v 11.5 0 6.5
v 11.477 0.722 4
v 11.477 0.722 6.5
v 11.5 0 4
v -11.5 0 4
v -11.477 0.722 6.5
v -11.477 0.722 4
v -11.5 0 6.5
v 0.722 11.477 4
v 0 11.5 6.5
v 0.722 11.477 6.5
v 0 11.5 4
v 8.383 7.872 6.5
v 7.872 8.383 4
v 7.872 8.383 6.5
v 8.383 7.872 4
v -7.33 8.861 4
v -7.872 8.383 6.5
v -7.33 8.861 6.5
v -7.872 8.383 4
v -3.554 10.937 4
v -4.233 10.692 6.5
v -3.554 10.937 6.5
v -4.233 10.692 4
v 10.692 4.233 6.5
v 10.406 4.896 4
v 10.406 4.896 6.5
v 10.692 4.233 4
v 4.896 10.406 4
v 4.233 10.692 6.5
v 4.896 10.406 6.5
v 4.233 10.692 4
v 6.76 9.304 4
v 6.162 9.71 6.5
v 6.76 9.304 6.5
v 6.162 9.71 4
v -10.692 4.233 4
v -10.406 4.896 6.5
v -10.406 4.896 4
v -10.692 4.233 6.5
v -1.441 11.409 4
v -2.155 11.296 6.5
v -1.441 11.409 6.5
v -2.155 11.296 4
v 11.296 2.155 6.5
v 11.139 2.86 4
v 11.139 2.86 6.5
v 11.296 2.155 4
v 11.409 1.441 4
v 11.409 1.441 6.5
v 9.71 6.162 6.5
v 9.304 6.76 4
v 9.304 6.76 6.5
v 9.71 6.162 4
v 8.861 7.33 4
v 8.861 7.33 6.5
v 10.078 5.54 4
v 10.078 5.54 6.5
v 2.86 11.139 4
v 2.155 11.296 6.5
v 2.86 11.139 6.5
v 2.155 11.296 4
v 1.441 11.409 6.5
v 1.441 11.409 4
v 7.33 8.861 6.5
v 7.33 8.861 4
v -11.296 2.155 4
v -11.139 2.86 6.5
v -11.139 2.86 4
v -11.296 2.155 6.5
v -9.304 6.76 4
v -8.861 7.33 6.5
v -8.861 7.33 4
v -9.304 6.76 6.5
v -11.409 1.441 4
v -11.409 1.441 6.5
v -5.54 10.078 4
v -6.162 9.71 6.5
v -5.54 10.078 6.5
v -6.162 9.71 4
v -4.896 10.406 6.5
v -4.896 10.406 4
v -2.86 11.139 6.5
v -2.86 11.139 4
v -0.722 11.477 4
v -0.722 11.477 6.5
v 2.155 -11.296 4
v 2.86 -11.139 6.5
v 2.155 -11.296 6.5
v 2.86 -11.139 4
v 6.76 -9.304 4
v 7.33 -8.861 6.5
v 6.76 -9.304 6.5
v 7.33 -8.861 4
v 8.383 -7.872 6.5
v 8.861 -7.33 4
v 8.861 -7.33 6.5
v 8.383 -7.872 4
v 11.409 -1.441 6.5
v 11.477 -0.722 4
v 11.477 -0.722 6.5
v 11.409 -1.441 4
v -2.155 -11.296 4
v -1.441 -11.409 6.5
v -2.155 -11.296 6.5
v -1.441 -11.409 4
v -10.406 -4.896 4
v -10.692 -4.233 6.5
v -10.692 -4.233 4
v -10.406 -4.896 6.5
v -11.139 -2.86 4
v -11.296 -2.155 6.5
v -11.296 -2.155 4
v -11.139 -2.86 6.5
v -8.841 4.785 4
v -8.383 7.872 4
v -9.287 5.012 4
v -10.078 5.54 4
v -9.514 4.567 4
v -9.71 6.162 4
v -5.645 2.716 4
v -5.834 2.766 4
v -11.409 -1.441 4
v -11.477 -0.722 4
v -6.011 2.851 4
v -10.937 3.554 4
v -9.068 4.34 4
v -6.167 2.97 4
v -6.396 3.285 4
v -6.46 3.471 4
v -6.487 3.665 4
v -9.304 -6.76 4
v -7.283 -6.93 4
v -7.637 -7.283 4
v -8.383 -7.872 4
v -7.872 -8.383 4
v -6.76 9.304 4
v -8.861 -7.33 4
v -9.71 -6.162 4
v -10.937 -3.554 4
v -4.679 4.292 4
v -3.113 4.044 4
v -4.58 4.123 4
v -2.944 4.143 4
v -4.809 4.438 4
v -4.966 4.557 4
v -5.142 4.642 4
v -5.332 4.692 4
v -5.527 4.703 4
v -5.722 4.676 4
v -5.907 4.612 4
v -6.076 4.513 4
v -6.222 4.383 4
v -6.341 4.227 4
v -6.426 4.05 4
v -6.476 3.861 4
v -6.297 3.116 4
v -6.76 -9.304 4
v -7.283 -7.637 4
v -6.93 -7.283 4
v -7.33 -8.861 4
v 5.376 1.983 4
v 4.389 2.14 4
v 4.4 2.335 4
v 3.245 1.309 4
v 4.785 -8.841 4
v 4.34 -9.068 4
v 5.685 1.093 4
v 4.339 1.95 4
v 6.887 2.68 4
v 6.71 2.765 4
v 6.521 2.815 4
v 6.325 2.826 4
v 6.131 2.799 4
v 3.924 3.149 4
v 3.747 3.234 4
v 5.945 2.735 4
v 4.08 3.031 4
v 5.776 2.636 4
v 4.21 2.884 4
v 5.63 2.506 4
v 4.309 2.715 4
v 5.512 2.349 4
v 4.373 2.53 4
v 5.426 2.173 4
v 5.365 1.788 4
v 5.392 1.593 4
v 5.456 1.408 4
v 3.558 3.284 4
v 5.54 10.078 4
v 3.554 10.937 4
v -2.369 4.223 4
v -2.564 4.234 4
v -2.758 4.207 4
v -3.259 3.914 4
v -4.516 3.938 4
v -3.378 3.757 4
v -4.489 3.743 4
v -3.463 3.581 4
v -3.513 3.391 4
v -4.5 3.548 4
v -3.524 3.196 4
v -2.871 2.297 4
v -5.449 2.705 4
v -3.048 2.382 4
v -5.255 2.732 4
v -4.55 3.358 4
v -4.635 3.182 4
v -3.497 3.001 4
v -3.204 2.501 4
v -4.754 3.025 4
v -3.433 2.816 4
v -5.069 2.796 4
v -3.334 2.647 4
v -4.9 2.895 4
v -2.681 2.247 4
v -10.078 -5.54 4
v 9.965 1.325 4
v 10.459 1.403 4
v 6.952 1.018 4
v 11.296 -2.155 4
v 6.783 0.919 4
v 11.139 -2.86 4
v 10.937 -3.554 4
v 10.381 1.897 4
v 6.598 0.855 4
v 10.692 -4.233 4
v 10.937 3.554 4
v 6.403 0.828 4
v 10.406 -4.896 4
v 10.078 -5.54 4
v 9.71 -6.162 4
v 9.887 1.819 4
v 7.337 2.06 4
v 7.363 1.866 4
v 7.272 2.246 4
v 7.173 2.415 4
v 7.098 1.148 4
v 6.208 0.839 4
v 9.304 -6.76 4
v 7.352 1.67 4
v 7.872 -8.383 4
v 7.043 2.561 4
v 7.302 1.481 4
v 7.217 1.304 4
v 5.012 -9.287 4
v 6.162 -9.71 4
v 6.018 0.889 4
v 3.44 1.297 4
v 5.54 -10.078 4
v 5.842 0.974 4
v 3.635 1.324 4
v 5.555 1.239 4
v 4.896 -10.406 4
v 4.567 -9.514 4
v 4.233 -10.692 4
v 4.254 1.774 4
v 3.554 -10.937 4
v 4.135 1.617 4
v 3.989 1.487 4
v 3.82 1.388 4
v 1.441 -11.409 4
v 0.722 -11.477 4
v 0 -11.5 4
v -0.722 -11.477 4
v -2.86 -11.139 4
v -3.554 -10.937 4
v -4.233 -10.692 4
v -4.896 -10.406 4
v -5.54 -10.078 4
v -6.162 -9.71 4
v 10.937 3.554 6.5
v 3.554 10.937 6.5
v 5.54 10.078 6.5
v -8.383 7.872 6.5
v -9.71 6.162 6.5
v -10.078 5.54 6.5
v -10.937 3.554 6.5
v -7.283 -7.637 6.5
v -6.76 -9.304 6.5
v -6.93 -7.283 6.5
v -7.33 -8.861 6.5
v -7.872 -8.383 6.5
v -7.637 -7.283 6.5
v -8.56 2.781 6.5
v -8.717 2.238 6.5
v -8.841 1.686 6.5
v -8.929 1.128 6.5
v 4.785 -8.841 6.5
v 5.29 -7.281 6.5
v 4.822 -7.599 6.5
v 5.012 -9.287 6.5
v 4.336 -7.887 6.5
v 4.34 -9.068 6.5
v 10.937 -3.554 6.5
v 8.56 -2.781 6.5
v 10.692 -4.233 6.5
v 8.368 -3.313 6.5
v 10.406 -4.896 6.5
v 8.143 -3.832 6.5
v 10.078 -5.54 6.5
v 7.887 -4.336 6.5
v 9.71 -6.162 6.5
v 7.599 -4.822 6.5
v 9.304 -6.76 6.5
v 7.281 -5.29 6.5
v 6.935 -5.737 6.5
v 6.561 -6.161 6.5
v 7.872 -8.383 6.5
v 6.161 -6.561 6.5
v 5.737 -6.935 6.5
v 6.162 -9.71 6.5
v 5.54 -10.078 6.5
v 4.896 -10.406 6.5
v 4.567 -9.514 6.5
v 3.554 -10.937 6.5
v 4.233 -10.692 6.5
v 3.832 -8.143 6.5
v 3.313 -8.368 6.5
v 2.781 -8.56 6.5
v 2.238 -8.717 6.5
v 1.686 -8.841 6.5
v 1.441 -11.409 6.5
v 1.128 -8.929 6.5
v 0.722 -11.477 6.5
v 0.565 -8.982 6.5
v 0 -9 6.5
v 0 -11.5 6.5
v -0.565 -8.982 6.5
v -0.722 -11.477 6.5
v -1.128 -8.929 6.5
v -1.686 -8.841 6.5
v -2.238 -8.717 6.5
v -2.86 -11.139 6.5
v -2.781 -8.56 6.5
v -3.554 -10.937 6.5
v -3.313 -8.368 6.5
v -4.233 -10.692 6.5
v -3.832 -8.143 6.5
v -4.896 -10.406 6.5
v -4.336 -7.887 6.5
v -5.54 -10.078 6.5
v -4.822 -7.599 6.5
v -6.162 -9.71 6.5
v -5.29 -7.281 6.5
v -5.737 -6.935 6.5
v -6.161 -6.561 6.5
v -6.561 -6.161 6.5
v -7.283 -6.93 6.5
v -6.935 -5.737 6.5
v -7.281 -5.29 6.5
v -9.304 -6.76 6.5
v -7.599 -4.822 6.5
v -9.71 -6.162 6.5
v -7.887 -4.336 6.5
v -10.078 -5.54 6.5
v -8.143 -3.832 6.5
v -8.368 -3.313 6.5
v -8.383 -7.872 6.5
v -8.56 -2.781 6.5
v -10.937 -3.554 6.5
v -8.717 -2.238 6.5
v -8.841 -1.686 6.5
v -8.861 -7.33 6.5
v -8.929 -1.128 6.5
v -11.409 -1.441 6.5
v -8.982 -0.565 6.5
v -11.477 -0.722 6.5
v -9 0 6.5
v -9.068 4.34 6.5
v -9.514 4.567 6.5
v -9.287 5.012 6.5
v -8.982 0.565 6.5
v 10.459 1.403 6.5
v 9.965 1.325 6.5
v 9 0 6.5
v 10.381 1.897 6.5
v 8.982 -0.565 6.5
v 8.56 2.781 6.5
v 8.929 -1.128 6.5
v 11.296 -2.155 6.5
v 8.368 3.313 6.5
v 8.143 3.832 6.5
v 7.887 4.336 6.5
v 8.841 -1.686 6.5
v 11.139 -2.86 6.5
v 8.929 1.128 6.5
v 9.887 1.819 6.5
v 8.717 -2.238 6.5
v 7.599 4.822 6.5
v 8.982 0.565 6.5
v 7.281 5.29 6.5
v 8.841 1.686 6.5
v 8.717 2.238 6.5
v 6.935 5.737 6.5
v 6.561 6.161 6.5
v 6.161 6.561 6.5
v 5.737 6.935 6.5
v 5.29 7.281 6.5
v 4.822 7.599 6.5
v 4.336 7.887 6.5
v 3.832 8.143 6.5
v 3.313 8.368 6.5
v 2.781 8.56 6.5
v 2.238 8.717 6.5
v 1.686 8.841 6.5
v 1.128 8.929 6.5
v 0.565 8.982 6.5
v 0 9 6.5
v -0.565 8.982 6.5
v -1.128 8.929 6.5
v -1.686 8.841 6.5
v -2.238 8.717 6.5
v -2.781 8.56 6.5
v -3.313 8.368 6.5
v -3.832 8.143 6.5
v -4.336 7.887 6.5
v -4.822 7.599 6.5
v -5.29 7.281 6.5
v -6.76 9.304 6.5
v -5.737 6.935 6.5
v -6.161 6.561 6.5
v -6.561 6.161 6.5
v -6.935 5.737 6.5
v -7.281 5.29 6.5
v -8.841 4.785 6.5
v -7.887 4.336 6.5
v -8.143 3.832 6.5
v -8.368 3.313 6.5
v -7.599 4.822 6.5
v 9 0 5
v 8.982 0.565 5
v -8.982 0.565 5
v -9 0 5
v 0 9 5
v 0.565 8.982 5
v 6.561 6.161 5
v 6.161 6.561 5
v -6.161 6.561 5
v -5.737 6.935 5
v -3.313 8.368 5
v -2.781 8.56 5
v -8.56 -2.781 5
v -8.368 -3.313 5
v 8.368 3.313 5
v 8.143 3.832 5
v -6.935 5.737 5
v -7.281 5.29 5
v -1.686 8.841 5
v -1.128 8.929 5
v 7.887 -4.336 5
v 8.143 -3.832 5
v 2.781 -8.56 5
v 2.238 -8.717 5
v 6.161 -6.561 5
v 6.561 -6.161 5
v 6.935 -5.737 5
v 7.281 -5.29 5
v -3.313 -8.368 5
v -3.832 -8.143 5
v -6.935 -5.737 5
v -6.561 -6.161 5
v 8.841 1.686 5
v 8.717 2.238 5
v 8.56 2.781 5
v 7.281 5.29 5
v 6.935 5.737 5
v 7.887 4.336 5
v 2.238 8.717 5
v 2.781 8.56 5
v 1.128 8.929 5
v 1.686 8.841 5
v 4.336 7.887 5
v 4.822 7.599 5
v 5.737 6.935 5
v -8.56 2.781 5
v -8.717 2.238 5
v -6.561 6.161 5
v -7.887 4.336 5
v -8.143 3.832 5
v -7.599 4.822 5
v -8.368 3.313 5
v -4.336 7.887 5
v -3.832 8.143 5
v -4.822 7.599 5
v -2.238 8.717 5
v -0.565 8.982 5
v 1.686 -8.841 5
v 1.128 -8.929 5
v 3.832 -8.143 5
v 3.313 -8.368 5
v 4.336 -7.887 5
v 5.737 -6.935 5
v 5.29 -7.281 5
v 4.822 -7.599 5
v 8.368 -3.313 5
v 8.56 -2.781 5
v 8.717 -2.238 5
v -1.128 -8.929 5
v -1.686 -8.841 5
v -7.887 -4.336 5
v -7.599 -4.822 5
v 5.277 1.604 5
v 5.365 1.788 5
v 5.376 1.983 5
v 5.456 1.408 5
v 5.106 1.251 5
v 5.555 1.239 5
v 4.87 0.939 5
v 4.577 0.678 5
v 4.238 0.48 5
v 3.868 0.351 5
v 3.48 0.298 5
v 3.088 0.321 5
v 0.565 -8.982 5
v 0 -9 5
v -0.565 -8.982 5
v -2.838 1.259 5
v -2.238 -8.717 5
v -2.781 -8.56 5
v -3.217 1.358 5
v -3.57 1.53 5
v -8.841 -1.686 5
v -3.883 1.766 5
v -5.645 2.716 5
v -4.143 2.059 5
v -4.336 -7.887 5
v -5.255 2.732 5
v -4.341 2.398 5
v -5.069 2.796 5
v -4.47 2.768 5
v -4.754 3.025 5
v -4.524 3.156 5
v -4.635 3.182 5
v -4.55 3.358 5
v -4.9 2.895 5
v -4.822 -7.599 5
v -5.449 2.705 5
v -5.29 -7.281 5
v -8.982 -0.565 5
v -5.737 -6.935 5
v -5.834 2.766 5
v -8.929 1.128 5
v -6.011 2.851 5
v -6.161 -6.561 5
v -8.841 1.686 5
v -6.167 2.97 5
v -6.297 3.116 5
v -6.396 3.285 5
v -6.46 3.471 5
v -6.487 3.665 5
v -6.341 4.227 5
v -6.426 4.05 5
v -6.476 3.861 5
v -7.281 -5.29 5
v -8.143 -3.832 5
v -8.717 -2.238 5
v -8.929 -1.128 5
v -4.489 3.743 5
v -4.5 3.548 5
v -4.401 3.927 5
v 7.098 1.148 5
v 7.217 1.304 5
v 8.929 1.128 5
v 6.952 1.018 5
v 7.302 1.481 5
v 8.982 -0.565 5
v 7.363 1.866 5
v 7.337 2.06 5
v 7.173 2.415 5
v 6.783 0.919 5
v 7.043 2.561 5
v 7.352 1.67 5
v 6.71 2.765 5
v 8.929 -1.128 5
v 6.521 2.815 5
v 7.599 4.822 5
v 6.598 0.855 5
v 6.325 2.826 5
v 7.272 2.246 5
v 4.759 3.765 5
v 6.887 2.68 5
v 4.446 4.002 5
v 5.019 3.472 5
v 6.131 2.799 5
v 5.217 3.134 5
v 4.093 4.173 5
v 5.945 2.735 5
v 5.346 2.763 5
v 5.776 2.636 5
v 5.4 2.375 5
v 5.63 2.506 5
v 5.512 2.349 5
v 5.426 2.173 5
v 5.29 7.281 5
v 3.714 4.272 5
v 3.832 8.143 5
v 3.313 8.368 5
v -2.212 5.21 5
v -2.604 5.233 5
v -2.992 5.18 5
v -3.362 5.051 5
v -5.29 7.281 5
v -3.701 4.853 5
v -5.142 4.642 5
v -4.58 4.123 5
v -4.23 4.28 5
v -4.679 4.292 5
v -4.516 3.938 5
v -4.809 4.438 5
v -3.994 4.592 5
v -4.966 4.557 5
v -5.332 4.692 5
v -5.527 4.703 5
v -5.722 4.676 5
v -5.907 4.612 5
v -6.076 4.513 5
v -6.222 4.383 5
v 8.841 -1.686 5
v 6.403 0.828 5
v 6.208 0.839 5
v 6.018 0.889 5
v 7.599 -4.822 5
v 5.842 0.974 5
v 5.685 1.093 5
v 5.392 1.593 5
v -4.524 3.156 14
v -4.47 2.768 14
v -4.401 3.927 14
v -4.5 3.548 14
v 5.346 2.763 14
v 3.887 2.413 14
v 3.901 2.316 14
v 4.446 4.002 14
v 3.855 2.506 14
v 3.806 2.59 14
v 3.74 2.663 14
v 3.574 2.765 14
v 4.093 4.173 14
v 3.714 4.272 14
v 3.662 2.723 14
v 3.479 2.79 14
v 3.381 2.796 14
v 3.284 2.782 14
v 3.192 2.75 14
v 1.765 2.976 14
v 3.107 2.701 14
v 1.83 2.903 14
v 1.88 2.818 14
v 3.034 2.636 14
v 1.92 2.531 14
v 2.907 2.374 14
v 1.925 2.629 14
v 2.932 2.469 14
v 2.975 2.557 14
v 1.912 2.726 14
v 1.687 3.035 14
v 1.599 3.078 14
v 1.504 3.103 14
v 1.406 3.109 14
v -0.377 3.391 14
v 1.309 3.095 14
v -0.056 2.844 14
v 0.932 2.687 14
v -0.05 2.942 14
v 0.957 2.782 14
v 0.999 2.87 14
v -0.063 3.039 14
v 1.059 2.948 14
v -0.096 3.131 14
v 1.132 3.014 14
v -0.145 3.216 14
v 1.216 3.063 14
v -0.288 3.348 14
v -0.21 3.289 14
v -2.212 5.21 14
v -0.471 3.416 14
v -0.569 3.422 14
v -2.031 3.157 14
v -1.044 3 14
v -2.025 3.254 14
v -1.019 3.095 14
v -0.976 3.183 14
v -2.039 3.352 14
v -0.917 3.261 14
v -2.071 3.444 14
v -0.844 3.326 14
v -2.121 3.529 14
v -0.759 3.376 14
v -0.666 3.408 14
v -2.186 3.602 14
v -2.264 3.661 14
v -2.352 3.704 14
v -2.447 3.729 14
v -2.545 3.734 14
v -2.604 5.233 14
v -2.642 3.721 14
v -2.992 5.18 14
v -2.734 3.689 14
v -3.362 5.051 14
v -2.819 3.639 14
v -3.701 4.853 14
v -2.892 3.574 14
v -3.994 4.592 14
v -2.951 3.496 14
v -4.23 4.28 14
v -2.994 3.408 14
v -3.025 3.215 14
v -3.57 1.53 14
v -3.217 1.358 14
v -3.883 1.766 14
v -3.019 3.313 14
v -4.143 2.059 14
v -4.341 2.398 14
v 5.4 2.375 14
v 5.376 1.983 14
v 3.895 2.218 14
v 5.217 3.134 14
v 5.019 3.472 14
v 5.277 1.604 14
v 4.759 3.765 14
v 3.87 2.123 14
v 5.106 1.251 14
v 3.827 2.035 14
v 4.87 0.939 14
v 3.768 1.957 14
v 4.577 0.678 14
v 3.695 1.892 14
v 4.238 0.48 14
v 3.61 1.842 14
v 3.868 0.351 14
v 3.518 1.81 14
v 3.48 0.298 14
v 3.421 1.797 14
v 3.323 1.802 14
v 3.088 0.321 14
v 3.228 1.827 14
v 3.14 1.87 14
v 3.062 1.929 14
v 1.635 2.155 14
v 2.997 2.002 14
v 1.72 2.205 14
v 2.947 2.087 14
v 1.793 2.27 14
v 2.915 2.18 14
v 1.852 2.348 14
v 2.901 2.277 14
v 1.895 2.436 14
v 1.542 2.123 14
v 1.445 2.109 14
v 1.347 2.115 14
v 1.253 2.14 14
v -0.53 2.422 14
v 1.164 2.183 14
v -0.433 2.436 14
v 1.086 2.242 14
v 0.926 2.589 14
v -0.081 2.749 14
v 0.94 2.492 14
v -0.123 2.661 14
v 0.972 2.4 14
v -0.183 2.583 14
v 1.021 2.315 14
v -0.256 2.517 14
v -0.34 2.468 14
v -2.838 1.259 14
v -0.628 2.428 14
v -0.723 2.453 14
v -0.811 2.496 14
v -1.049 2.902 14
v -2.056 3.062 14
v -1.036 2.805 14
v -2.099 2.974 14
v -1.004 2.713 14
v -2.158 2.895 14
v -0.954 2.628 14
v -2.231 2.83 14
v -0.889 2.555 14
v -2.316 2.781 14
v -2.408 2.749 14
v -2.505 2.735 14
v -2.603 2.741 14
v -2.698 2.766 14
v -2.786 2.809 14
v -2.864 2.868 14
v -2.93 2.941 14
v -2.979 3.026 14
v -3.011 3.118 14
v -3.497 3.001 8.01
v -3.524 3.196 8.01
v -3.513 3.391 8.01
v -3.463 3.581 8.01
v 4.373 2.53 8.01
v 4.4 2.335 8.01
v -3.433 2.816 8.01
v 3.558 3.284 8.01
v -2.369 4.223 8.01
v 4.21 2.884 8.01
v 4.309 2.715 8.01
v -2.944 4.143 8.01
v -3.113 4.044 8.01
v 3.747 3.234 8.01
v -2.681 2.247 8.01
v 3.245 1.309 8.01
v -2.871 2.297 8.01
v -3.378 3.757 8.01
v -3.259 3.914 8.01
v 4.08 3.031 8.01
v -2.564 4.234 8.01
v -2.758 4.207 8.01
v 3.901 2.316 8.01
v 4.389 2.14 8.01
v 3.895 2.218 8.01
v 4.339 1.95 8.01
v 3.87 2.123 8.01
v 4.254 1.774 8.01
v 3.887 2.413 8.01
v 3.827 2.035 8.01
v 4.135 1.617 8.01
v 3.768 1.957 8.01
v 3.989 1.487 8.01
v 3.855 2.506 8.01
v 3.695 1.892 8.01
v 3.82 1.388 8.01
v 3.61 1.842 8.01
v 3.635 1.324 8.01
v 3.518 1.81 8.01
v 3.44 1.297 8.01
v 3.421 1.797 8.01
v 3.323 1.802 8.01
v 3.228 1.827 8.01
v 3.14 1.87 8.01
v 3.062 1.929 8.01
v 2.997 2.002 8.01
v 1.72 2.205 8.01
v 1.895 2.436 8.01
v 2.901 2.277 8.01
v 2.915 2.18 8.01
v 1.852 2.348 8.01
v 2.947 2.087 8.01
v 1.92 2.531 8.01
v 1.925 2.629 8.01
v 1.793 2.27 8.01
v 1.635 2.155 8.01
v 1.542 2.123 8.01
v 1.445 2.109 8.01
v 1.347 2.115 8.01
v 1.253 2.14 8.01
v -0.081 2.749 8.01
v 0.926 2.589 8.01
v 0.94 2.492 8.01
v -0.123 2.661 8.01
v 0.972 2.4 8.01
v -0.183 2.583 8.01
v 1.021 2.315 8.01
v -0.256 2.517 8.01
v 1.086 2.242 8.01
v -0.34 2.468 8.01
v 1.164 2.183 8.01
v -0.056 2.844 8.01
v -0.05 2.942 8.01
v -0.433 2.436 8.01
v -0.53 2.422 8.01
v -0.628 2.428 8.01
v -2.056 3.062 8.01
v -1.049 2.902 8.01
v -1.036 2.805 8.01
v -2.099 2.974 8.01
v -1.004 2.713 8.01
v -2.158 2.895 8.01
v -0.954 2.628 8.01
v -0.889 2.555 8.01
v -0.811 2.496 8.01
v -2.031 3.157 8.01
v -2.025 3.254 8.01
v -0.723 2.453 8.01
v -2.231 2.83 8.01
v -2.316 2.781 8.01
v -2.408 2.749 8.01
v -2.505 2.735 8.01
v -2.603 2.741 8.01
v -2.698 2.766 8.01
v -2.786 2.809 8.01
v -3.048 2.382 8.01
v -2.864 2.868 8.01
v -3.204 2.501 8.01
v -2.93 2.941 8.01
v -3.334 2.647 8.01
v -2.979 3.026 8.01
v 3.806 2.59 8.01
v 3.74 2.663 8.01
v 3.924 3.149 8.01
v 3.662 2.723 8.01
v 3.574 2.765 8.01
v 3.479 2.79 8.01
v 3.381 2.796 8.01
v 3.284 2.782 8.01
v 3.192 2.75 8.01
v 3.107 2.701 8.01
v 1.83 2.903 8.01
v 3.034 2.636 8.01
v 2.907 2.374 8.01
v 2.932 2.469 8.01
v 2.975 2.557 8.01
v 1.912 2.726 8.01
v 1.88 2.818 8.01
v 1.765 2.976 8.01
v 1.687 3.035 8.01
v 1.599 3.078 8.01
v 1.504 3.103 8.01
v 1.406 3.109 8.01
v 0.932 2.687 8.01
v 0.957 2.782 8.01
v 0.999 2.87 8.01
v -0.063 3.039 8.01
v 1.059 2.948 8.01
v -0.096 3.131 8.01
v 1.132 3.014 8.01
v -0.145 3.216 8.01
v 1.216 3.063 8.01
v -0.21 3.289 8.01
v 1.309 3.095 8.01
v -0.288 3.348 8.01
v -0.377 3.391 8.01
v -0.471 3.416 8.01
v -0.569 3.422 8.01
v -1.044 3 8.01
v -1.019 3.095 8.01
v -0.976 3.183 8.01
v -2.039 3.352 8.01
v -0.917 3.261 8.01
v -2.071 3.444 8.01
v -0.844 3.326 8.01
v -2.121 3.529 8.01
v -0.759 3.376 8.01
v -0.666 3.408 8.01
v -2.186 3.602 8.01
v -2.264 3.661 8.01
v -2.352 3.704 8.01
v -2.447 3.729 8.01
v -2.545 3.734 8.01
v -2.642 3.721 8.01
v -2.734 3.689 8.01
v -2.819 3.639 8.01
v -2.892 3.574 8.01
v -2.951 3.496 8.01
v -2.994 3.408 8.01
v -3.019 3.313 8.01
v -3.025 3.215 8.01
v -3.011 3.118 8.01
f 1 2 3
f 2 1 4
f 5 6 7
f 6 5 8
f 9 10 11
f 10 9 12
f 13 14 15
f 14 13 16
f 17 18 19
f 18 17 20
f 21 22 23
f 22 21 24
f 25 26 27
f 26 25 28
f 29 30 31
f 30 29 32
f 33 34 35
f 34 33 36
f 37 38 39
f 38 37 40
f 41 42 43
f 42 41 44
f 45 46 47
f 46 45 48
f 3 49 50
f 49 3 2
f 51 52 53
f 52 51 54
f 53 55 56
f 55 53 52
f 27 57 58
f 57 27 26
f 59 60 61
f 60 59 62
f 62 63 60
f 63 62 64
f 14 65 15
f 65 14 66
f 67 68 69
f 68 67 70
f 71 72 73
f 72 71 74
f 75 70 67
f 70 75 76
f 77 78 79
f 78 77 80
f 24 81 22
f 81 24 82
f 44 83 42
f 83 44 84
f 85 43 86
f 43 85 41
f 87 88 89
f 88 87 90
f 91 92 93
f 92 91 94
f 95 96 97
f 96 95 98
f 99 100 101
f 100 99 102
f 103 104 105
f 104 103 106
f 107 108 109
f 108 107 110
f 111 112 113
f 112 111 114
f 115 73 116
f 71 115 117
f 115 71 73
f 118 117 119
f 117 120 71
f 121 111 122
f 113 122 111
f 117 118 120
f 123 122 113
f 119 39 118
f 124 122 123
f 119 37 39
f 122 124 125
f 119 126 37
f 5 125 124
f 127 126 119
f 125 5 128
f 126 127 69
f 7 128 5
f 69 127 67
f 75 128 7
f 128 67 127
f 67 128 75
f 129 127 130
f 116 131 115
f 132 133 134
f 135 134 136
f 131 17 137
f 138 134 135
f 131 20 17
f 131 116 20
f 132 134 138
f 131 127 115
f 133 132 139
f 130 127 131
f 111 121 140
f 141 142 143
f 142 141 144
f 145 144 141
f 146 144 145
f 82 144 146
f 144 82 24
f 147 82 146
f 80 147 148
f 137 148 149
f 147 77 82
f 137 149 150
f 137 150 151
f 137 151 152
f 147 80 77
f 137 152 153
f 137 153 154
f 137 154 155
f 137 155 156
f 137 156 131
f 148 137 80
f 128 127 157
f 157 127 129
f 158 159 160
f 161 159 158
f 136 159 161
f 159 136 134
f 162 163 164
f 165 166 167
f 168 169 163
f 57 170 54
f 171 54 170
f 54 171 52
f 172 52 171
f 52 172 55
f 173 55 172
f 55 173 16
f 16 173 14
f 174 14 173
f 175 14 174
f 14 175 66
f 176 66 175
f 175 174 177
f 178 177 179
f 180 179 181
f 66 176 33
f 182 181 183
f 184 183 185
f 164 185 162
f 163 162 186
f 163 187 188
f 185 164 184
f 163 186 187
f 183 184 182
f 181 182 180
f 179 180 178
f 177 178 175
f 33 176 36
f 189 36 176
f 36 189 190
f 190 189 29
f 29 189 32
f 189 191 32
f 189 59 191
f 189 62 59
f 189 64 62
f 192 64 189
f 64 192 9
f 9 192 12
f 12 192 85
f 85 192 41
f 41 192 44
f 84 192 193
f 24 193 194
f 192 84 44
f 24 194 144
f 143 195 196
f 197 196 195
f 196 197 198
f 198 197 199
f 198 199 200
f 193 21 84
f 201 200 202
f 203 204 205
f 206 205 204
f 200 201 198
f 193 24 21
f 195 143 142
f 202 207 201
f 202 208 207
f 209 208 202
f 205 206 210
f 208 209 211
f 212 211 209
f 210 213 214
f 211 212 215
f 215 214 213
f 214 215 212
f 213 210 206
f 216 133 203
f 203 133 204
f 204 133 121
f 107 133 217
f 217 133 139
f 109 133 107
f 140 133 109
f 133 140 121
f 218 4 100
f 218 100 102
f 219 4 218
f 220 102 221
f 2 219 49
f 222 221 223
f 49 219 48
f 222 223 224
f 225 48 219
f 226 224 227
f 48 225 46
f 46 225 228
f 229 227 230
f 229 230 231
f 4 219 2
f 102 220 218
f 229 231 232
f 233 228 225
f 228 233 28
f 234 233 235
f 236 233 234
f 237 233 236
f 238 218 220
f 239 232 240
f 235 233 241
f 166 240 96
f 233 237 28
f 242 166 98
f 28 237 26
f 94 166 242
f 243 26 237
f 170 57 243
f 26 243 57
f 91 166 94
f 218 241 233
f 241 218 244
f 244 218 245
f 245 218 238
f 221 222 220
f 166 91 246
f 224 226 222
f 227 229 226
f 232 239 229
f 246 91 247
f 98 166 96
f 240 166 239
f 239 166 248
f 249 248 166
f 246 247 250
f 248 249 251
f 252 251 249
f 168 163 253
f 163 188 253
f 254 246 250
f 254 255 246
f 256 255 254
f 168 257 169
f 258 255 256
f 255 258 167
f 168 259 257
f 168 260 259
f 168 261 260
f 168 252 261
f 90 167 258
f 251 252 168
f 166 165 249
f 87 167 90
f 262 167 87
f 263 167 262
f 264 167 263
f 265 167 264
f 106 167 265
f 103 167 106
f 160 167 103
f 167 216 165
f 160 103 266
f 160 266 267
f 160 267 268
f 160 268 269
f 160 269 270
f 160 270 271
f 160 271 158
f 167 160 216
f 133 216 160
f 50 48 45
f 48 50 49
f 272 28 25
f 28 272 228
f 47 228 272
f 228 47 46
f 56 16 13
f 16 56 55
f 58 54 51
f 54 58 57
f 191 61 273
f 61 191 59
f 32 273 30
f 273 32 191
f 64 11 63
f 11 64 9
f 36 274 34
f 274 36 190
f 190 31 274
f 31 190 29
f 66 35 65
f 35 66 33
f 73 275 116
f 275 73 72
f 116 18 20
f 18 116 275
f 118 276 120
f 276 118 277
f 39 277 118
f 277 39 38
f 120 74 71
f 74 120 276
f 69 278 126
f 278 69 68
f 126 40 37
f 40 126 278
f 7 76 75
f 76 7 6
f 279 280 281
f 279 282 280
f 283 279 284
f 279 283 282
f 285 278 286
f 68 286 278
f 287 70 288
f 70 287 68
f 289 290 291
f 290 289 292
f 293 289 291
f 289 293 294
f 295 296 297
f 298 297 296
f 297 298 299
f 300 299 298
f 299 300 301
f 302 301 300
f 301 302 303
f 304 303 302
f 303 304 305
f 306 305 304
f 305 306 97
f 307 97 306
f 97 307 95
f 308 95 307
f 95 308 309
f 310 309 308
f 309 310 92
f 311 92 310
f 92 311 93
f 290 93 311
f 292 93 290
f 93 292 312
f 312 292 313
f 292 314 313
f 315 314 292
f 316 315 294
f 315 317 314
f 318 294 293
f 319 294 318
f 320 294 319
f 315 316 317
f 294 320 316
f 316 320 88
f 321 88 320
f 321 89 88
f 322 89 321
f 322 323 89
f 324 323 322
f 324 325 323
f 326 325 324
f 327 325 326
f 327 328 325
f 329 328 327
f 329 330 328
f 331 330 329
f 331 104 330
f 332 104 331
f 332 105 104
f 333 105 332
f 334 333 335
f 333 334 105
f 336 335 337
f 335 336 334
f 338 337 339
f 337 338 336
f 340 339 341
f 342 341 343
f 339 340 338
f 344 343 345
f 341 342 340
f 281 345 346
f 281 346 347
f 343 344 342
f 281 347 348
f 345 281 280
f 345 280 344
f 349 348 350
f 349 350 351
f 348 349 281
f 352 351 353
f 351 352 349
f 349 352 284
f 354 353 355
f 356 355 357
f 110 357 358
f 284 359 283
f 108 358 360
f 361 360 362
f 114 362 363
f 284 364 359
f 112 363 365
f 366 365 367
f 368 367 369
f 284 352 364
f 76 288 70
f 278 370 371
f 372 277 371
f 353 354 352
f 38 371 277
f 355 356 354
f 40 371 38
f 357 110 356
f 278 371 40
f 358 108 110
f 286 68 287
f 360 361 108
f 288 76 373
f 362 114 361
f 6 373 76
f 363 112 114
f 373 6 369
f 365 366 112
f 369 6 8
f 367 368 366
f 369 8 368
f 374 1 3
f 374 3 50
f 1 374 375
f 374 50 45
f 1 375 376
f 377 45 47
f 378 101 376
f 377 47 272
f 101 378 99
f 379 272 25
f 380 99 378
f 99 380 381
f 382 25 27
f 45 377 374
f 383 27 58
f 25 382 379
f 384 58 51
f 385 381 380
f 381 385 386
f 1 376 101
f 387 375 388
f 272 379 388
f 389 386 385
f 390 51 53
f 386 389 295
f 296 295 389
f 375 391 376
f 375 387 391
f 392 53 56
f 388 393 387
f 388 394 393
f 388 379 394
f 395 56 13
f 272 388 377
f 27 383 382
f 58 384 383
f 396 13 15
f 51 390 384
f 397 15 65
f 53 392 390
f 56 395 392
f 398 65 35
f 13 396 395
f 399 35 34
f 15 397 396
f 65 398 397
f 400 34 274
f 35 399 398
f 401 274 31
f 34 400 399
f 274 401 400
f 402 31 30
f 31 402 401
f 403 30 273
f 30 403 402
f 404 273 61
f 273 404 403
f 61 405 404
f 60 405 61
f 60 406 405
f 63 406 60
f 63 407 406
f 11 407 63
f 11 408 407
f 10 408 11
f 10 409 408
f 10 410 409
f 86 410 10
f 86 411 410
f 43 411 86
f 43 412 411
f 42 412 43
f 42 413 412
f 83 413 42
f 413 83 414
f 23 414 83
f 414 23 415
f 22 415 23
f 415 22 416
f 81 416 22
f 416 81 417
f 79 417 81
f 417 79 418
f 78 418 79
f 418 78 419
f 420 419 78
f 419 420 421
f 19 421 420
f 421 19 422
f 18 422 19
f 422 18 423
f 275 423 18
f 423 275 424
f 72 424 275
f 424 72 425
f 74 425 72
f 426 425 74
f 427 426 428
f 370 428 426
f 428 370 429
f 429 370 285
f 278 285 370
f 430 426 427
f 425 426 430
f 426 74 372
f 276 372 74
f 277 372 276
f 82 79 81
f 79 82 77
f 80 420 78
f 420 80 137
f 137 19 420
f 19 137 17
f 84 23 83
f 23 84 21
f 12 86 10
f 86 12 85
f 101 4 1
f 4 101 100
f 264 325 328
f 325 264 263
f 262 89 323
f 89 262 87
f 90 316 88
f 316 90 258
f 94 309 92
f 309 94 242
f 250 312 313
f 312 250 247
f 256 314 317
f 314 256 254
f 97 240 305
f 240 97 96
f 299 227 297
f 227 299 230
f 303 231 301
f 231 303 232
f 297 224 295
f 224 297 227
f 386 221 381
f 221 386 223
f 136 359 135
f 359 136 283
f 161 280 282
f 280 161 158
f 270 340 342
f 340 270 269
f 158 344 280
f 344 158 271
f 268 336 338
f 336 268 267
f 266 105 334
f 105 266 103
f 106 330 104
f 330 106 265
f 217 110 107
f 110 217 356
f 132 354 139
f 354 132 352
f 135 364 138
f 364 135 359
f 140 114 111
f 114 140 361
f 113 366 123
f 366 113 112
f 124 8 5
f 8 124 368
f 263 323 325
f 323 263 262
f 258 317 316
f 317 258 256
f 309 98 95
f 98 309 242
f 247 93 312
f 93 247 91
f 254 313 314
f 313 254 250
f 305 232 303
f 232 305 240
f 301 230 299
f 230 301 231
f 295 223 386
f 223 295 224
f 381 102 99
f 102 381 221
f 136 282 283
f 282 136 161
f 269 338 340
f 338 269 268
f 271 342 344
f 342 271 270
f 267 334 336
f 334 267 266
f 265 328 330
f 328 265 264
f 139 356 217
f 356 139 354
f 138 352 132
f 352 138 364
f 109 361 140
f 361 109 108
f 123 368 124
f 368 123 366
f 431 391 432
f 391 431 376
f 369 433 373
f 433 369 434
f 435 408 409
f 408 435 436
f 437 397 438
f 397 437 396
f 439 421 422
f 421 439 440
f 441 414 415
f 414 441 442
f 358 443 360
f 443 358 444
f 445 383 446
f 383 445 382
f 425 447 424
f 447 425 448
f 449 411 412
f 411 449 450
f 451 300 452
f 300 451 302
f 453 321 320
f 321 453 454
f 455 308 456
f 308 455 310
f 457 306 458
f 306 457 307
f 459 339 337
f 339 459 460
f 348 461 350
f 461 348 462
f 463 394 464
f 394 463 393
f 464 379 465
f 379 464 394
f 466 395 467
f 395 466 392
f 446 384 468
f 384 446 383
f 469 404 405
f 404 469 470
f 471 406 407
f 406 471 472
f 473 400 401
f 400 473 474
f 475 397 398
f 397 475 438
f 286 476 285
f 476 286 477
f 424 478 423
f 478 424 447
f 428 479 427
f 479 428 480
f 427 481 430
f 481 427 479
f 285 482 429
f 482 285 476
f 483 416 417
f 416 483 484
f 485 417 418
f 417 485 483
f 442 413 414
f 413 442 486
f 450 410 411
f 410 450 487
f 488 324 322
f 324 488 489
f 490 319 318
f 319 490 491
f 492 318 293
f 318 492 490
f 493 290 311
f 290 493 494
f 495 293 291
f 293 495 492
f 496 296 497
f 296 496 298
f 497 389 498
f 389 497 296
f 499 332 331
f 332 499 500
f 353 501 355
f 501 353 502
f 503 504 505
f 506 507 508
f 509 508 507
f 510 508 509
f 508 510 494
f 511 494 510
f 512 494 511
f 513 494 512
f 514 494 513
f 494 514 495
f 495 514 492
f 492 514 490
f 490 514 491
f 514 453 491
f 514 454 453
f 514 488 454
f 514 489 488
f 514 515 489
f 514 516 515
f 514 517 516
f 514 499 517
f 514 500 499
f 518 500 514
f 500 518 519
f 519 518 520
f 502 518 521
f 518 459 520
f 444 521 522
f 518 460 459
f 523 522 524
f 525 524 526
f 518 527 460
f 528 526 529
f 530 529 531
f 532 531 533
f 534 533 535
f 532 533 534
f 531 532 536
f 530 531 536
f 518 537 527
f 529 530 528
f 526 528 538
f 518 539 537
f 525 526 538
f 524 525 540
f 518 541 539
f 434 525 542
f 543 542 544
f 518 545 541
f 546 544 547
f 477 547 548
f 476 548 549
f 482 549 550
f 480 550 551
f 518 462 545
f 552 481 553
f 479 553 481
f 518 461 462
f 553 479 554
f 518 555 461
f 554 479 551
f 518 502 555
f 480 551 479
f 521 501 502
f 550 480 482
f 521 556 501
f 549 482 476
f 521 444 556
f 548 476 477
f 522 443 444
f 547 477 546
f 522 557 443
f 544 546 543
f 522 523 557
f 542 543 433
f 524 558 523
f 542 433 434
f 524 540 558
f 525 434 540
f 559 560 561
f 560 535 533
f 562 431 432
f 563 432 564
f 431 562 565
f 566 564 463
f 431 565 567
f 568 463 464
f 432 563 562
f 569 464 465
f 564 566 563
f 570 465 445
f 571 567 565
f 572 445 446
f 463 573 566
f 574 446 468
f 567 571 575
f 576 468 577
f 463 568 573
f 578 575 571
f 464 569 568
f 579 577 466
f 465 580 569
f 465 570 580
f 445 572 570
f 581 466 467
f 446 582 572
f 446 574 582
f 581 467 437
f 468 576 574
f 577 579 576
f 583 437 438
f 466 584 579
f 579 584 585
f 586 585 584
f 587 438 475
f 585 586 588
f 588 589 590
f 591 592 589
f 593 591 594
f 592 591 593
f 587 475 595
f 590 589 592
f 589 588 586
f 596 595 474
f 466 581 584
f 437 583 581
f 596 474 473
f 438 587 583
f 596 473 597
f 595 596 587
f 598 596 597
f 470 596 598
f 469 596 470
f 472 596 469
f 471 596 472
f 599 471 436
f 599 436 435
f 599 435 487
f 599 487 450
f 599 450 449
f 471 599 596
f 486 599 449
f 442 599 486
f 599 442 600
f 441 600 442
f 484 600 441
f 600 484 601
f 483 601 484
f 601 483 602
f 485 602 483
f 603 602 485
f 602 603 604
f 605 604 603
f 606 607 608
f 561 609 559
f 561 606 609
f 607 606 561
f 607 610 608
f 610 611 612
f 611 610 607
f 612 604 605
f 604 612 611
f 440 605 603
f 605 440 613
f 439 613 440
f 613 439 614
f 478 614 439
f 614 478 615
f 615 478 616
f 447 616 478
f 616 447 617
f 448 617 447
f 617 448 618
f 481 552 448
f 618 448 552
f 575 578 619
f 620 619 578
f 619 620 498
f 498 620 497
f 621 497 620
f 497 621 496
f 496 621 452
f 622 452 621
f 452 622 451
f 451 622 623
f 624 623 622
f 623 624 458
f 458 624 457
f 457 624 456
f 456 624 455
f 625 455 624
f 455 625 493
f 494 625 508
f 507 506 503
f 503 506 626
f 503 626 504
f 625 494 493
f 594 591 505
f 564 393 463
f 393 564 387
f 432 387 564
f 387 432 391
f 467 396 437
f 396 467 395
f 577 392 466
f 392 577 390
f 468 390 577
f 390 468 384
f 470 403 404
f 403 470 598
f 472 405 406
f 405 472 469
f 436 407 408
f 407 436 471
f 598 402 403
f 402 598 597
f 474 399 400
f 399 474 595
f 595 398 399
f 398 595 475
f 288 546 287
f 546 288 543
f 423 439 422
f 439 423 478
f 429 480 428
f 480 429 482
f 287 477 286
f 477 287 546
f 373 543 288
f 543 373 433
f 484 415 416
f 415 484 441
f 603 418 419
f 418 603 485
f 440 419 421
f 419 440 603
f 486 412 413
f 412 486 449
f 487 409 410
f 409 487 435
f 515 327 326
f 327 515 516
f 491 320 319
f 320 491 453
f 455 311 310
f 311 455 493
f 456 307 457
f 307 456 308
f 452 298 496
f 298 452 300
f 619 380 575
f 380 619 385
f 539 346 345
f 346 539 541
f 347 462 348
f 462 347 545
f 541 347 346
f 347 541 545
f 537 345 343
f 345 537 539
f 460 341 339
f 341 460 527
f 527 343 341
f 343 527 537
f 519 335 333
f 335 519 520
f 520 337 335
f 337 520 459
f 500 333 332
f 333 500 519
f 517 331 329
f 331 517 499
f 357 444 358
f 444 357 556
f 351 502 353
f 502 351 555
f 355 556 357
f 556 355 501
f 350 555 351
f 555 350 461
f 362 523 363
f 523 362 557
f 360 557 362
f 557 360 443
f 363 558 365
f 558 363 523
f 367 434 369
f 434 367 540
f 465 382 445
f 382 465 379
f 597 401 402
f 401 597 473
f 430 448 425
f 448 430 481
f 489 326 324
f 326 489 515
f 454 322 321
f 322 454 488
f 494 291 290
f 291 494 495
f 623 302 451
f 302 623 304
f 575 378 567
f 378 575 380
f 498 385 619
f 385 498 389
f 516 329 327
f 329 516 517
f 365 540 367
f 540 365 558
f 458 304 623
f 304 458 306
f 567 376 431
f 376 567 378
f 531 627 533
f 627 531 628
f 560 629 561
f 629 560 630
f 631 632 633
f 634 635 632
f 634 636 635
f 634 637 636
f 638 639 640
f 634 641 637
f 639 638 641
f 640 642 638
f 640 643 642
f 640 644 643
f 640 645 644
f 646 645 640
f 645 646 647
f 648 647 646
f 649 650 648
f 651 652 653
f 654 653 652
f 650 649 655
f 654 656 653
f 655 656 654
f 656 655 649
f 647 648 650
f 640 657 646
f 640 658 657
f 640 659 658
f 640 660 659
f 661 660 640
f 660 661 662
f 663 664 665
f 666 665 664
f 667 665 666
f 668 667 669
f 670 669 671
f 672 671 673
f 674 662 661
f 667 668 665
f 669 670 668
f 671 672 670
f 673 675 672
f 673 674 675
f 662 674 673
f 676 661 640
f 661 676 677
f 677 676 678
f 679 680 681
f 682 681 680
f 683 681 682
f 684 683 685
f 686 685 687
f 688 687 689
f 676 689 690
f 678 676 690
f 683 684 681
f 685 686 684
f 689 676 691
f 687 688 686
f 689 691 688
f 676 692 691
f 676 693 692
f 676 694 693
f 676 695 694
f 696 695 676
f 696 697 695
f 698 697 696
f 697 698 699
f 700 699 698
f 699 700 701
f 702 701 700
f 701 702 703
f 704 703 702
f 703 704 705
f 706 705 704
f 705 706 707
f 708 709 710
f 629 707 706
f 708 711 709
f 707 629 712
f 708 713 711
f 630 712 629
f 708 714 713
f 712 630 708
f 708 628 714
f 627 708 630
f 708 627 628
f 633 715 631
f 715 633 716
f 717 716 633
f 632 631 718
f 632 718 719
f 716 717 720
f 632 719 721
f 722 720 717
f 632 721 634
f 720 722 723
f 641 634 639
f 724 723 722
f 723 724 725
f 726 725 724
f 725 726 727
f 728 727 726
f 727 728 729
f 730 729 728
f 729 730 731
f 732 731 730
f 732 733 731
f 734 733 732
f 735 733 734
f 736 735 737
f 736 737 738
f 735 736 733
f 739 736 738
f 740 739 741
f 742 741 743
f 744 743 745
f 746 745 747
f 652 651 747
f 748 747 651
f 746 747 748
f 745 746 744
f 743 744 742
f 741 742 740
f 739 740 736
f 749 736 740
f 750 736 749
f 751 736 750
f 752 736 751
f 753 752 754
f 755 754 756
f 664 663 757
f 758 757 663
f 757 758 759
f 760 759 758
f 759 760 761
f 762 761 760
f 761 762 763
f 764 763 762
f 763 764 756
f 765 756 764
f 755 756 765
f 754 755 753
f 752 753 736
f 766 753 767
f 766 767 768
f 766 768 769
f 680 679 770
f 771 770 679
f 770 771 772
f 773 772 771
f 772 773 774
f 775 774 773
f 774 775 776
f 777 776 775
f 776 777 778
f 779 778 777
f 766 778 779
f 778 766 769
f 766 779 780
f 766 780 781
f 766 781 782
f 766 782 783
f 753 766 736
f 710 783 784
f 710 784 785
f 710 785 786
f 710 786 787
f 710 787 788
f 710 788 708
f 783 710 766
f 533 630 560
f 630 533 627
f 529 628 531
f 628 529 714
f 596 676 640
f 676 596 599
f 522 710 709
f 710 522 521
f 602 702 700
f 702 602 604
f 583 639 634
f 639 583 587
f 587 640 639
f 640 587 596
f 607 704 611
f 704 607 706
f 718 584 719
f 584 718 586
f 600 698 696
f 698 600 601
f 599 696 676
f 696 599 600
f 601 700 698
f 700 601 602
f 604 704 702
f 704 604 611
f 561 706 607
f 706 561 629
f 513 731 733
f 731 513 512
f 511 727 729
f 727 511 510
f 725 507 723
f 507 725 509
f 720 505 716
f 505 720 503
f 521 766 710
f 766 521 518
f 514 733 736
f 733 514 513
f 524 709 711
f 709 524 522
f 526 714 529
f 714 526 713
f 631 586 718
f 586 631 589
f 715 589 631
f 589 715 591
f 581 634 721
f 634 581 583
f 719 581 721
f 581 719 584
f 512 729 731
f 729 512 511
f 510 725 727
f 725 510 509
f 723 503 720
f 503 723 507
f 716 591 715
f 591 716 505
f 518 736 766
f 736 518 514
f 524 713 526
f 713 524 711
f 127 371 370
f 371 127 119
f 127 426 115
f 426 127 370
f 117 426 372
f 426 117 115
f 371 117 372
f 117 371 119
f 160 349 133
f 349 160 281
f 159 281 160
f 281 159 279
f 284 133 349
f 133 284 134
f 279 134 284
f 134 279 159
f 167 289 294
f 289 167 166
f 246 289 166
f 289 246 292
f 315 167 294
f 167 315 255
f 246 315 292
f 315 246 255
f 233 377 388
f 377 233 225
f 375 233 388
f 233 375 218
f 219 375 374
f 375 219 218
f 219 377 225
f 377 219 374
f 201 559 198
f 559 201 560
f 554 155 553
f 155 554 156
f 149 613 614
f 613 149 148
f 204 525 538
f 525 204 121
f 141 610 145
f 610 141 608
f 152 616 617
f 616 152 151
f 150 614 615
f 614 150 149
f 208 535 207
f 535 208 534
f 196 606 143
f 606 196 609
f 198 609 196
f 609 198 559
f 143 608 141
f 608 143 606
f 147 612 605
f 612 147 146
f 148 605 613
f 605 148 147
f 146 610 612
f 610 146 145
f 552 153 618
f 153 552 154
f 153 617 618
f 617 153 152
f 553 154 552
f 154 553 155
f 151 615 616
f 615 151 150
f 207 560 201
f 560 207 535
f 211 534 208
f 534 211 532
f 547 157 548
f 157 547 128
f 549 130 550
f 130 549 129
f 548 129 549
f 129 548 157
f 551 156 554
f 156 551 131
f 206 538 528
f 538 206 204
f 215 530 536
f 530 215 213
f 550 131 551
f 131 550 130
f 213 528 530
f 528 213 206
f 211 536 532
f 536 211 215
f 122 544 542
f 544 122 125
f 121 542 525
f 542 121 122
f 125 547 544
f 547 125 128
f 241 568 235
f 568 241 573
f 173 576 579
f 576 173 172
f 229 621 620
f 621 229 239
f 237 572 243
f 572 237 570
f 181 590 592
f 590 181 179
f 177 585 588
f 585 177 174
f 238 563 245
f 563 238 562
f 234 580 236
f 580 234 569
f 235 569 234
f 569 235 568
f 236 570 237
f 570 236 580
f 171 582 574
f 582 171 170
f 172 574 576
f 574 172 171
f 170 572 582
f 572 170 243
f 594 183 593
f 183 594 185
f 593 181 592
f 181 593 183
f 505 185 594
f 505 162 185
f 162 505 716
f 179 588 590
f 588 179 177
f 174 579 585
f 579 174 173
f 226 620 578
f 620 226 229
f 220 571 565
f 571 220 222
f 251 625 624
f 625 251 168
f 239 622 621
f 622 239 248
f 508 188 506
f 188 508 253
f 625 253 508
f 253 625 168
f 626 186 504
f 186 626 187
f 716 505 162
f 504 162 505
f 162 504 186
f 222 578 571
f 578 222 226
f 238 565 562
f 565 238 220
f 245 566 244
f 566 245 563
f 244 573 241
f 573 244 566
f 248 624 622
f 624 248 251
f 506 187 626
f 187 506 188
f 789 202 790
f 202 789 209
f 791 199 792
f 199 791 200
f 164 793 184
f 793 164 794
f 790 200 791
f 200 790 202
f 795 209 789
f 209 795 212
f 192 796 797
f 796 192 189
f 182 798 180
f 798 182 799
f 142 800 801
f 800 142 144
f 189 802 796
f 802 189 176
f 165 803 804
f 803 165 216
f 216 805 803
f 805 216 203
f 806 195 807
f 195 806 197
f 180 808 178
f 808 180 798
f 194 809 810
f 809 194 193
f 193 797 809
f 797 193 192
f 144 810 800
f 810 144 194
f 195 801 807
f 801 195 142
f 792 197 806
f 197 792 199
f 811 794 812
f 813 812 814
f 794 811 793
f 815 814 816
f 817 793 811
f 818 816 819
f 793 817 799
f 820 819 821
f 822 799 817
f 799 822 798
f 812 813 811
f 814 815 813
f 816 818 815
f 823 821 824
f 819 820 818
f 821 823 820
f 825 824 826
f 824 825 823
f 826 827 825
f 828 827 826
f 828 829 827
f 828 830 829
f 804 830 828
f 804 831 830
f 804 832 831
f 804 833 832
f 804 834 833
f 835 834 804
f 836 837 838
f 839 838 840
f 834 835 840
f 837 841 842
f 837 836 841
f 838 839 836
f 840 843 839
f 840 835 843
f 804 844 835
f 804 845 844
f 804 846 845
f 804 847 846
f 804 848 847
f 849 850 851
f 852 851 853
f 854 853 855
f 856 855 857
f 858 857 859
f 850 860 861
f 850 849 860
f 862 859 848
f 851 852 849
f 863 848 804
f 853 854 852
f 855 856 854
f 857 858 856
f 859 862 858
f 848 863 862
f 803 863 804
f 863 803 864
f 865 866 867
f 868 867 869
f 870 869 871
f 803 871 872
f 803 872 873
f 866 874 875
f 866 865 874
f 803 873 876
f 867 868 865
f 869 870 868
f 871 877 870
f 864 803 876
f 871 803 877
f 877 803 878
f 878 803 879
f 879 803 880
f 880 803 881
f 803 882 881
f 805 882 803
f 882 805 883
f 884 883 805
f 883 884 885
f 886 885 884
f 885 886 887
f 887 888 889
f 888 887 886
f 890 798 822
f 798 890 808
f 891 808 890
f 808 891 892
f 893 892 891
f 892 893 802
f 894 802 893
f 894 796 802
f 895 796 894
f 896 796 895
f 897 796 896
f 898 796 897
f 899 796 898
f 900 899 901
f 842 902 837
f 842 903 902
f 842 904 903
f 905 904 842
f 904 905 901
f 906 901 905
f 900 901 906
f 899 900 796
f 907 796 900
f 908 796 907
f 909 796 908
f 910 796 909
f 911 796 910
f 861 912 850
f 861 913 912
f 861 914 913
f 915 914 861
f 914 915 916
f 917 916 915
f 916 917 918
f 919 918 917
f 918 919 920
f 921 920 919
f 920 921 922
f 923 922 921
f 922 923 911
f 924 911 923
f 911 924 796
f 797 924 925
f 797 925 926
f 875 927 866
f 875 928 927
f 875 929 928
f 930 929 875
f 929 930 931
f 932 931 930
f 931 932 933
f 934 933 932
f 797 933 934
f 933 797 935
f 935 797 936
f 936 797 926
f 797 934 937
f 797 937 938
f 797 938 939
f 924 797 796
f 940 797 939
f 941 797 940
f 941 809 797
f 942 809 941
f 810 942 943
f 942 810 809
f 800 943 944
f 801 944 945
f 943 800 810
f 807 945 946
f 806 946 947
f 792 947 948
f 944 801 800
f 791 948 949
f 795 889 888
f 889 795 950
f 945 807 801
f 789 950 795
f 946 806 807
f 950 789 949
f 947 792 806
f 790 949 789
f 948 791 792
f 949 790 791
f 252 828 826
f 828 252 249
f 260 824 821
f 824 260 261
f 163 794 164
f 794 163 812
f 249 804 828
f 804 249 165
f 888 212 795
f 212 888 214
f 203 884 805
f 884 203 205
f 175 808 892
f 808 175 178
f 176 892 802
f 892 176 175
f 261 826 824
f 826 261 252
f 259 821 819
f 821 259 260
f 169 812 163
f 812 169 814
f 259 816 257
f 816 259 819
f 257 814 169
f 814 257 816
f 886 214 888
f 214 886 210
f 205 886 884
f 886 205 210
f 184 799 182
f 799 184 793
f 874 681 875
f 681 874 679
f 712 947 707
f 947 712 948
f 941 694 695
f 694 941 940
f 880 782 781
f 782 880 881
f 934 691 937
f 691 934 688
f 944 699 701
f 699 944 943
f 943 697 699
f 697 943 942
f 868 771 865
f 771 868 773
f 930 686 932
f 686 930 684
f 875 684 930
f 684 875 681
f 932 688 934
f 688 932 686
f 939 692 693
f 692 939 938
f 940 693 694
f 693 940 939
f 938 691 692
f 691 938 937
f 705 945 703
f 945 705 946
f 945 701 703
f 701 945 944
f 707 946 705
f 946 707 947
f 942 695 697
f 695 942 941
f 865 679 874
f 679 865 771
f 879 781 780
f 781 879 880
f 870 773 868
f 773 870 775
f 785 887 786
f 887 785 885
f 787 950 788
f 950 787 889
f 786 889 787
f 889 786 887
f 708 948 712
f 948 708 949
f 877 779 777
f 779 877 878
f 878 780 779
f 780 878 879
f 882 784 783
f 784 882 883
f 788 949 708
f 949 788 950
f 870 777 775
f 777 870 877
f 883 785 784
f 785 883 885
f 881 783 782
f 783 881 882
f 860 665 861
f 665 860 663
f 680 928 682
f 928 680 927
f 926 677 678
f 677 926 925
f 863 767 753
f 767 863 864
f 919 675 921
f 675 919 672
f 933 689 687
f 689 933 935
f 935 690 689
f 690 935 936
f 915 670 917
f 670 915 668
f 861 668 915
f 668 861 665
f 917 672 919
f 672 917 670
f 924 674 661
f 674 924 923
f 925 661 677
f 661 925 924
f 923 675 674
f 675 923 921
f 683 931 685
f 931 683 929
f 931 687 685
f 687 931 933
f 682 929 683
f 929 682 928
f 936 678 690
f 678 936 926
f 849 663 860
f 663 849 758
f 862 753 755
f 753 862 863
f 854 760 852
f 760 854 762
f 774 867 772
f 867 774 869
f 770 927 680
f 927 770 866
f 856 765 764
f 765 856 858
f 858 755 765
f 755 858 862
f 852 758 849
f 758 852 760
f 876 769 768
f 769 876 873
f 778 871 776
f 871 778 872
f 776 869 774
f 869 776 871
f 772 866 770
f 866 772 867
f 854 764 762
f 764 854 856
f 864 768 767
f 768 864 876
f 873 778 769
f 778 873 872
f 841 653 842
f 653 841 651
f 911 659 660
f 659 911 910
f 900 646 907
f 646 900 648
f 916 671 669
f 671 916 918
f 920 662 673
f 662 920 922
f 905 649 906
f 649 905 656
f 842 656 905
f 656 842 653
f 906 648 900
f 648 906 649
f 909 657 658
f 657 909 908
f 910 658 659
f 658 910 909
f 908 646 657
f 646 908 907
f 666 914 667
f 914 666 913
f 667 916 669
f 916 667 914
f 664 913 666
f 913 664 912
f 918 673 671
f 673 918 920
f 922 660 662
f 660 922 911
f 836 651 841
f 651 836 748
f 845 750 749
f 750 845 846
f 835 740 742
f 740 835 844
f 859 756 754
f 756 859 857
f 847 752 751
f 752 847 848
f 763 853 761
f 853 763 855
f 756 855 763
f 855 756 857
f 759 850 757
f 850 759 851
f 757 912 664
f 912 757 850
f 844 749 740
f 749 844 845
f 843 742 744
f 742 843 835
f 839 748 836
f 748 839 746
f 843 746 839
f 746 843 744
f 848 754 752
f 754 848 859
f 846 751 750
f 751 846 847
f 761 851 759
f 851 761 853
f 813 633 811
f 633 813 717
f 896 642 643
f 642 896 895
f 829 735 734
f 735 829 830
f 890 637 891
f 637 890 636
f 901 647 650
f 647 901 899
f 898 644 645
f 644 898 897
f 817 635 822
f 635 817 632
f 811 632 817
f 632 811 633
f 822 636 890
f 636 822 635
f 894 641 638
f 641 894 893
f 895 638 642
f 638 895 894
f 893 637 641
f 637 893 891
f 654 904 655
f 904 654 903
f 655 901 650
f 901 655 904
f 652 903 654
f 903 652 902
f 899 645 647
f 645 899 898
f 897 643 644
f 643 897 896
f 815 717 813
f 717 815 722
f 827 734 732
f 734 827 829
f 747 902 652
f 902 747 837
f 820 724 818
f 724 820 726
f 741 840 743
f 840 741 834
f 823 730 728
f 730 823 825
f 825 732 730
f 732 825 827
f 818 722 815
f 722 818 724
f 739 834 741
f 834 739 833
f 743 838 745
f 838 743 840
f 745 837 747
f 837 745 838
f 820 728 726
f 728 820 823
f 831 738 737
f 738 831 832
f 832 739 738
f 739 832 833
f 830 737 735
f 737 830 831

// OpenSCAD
// file: switch.scad
module switch_cutout()
{
	translate ([ 0, 0, .69 ])
		union ()
		{
			cube(size=[6.9,3,5], center=true);
			translate ([0,-2.4,0])
				cube(size=[4,5,1.42], center=true);
		}
}

switch_cutout();
// file: egg.scad
module dhxdron(r) {
    scale ( [r,r,r] ){
polyhedron( points = [ [-3.142158e-01, -9.670568e-01, -1.941960e-01], [-2.771276e-01, -8.529112e-01, -5.542553e-01], [2.989346e-01, -9.200262e-01, -4.836864e-01], [0.000000e+00, -1.054256e+00, 0.000000e+00], [5.084118e-01, -3.693828e-01, -8.226276e-01], [1.712743e-01, -5.271281e-01, -8.968039e-01], [5.551115e-17, 0.000000e+00, -1.081556e+00], [5.542553e-01, 0.000000e+00, -8.968039e-01], [-6.284316e-01, 0.000000e+00, -8.226276e-01], [-4.484020e-01, -3.257831e-01, -8.968039e-01], [-7.826210e-01, -5.686075e-01, -4.836864e-01], [-8.968039e-01, 0.000000e+00, -5.542553e-01], [-3.142158e-01, 9.670568e-01, -1.941960e-01], [0.000000e+00, 1.054256e+00, -0.000000e+00], [2.989346e-01, 9.200262e-01, -4.836864e-01], [-2.771276e-01, 8.529112e-01, -5.542553e-01], [-5.084118e-01, -3.693828e-01, 8.226276e-01], [-5.542553e-01, 0.000000e+00, 8.968039e-01], [-9.673728e-01, 0.000000e+00, 4.836864e-01], [-7.255296e-01, -5.271281e-01, 5.542553e-01], [1.016824e+00, 0.000000e+00, 1.941960e-01], [8.968039e-01, 0.000000e+00, 5.542553e-01], [7.826210e-01, -5.686075e-01, 4.836864e-01], [1.002657e+00, -3.257831e-01, 5.551115e-17], [3.142158e-01, -9.670568e-01, 1.941960e-01], [6.196763e-01, -8.529112e-01, -0.000000e+00], [5.084118e-01, 3.693828e-01, -8.226276e-01], [1.712743e-01, 5.271281e-01, -8.968039e-01], [-1.016824e+00, 0.000000e+00, -1.941960e-01], [-1.002657e+00, -3.257831e-01, -5.551115e-17], [3.142158e-01, 9.670568e-01, 1.941960e-01], [6.196763e-01, 8.529112e-01, -0.000000e+00], [-5.084118e-01, 3.693828e-01, 8.226276e-01], [-7.255296e-01, 5.271281e-01, 5.542553e-01], [6.284316e-01, 0.000000e+00, 8.226276e-01], [4.484020e-01, -3.257831e-01, 8.968039e-01], [-2.989346e-01, -9.200262e-01, 4.836864e-01], [-6.196763e-01, -8.529112e-01, -0.000000e+00], [9.673728e-01, 0.000000e+00, -4.836864e-01], [7.255296e-01, -5.271281e-01, -5.542553e-01], [-7.826210e-01, 5.686075e-01, -4.836864e-01], [-4.484020e-01, 3.257831e-01, -8.968039e-01], [-6.196763e-01, 8.529112e-01, -0.000000e+00], [-2.989346e-01, 9.200262e-01, 4.836864e-01], [-1.712743e-01, -5.271281e-01, 8.968039e-01], [-5.551115e-17, 0.000000e+00, 1.081556e+00], [1.002657e+00, 3.257831e-01, 5.551115e-17], [7.826210e-01, 5.686075e-01, 4.836864e-01], [2.771276e-01, -8.529112e-01, 5.542553e-01], [7.255296e-01, 5.271281e-01, -5.542553e-01], [-1.002657e+00, 3.257831e-01, -5.551115e-17], [2.771276e-01, 8.529112e-01, 5.542553e-01], [-1.712743e-01, 5.271281e-01, 8.968039e-01], [4.484020e-01, 3.257831e-01, 8.968039e-01], [-1.941960e-01, -5.976740e-01, -8.226276e-01], [-1.941960e-01, 5.976740e-01, -8.226276e-01], [-8.226276e-01, -5.976740e-01, 1.941960e-01], [8.226276e-01, -5.976740e-01, -1.941960e-01], [8.226276e-01, 5.976740e-01, -1.941960e-01], [-8.226276e-01, 5.976740e-01, 1.941960e-01], [1.941960e-01, -5.976740e-01, 8.226276e-01], [1.941960e-01, 5.976740e-01, 8.226276e-01] ], faces = [ [ 3, 2, 1, 0 ] , [ 7, 6, 5, 4 ] , [ 11, 10, 9, 8 ] , [ 15, 14, 13, 12 ] , [ 19, 18, 17, 16 ] , [ 23, 22, 21, 20 ] , [ 25, 2, 3, 24 ] , [ 27, 6, 7, 26 ] , [ 29, 10, 11, 28 ] , [ 13, 14, 31, 30 ] , [ 17, 18, 33, 32 ] , [ 21, 22, 35, 34 ] , [ 37, 36, 3, 0 ] , [ 39, 38, 7, 4 ] , [ 41, 40, 11, 8 ] , [ 13, 43, 42, 12 ] , [ 17, 45, 44, 16 ] , [ 21, 47, 46, 20 ] , [ 3, 36, 48, 24 ] , [ 7, 38, 49, 26 ] , [ 11, 40, 50, 28 ] , [ 51, 43, 13, 30 ] , [ 52, 45, 17, 32 ] , [ 53, 47, 21, 34 ] , [ 1, 2, 5, 54 ] , [ 5, 6, 9, 54 ] , [ 9, 10, 1, 54 ] , [ 27, 14, 15, 55 ] , [ 29, 18, 19, 56 ] , [ 25, 22, 23, 57 ] , [ 39, 2, 25, 57 ] , [ 41, 6, 27, 55 ] , [ 37, 10, 29, 56 ] , [ 31, 14, 49, 58 ] , [ 33, 18, 50, 59 ] , [ 35, 22, 48, 60 ] , [ 19, 36, 37, 56 ] , [ 23, 38, 39, 57 ] , [ 15, 40, 41, 55 ] , [ 42, 43, 33, 59 ] , [ 44, 45, 35, 60 ] , [ 46, 47, 31, 58 ] , [ 48, 36, 44, 60 ] , [ 49, 38, 46, 58 ] , [ 50, 40, 42, 59 ] , [ 52, 43, 51, 61 ] , [ 53, 45, 52, 61 ] , [ 51, 47, 53, 61 ] , [ 5, 2, 39, 4 ] , [ 9, 6, 41, 8 ] , [ 1, 10, 37, 0 ] , [ 49, 14, 27, 26 ] , [ 50, 18, 29, 28 ] , [ 48, 22, 25, 24 ] , [ 44, 36, 19, 16 ] , [ 46, 38, 23, 20 ] , [ 42, 40, 15, 12 ] , [ 33, 43, 52, 32 ] , [ 35, 45, 53, 34 ] , [ 31, 47, 51, 30 ]  ], convexity = 4);
    }
}

module egg(inner, outer) {
    difference () {
        dhxdron(outer);
        dhxdron(inner);
    }
}

render() egg(1,2);
// main file
use <balldome_msp.scad>

//ball();
//hold();
base();
render(convexity=10);
